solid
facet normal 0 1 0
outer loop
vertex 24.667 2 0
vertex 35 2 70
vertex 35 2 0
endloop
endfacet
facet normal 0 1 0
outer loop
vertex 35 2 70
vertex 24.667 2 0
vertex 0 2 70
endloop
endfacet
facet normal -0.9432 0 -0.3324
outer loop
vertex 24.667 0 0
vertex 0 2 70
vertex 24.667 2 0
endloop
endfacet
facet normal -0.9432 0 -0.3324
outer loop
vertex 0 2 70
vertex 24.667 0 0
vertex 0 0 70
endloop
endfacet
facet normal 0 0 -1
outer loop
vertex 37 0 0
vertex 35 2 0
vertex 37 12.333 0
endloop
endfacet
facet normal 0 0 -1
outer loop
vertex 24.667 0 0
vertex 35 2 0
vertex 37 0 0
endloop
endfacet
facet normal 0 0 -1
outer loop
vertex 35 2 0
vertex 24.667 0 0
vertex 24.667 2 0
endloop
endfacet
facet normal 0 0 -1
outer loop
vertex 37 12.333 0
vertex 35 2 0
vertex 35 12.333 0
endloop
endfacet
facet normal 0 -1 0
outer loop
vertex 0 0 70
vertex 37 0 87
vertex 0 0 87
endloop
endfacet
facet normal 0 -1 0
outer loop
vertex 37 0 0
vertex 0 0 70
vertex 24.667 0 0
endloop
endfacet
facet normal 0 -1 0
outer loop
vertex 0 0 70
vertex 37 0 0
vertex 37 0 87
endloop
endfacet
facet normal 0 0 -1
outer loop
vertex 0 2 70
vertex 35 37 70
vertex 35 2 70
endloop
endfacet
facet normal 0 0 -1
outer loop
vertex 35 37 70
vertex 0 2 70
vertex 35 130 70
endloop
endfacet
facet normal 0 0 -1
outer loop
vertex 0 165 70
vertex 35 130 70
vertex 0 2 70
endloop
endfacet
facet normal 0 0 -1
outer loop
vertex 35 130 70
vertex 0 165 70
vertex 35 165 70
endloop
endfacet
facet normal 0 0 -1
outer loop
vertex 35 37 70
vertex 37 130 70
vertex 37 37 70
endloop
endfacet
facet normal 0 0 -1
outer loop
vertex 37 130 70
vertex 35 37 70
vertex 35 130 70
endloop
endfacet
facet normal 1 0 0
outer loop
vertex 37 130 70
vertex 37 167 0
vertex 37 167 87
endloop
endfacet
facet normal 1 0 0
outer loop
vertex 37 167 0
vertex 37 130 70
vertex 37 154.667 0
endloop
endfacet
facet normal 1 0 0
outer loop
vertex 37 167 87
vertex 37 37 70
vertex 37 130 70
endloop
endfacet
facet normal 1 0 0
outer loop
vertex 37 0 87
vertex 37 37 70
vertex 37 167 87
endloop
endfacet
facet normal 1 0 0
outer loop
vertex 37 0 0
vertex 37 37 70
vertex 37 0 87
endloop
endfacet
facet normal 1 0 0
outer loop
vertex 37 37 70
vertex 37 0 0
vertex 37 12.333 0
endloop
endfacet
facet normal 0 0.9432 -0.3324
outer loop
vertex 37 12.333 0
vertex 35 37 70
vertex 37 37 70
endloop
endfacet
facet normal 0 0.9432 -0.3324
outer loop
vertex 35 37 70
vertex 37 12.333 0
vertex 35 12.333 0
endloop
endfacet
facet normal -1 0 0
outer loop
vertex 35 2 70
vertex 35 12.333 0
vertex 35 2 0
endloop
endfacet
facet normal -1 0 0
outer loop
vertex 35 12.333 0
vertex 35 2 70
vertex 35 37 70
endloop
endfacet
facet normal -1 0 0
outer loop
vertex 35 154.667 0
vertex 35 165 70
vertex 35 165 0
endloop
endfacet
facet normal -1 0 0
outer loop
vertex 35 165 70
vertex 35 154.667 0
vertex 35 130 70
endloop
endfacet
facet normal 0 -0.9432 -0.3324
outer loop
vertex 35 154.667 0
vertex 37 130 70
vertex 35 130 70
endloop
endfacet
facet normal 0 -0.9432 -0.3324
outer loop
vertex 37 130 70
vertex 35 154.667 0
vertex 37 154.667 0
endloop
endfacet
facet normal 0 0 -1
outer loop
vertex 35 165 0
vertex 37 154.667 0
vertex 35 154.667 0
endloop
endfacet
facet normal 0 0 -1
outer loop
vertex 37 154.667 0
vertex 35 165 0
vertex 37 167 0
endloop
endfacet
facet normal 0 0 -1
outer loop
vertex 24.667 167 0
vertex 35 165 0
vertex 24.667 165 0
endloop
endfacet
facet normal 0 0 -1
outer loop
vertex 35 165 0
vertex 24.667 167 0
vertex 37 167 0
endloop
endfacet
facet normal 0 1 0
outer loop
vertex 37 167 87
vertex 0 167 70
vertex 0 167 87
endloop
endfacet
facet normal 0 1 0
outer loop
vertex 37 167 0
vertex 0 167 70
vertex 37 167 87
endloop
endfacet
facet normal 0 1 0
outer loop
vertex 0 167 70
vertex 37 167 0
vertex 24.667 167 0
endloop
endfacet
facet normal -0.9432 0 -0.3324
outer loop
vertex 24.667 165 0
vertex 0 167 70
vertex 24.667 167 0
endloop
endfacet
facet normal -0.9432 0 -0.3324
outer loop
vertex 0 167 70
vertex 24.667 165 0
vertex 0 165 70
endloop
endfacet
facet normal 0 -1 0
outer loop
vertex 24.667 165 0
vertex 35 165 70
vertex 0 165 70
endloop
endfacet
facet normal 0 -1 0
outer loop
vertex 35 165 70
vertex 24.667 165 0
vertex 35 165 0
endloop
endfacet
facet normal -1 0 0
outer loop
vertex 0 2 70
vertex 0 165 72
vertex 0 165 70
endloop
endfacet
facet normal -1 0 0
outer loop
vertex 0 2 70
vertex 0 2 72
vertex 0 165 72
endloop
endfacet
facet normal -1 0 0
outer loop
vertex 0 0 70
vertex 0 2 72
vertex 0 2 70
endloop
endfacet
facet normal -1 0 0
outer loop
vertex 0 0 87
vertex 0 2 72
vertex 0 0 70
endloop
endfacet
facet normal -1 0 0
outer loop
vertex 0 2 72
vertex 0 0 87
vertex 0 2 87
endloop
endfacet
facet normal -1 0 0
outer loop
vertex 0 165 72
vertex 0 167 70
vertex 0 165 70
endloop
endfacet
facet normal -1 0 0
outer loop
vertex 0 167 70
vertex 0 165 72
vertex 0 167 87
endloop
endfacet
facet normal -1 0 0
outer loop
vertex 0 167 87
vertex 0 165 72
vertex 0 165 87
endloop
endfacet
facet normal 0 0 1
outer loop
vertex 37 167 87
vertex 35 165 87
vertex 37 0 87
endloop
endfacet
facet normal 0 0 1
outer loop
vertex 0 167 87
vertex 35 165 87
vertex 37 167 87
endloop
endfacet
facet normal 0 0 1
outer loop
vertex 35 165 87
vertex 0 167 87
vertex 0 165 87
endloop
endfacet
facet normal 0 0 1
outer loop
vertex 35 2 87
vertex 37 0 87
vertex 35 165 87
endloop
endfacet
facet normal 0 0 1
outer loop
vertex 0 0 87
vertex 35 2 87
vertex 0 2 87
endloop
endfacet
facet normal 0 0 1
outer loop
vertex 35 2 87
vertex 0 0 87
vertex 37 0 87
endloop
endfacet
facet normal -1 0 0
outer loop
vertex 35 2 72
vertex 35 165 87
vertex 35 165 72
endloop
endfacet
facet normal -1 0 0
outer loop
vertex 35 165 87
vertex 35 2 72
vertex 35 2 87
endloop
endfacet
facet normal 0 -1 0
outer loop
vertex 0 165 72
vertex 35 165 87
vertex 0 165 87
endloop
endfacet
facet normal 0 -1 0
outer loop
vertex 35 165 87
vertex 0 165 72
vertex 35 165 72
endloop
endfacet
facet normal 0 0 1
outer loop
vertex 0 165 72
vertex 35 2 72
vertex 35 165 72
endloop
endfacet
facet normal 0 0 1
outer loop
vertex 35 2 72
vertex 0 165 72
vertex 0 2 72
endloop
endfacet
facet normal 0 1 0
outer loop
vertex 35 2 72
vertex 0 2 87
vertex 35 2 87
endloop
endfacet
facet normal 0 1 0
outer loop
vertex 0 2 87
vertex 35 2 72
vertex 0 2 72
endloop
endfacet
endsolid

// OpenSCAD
$fn = 50;

tolerance = 1;

draperDepth = 162;
draperDepthWithTolerance = draperDepth + tolerance;
draperWidth = 502;

frontSize = 15;
feetHeight = 70;
feetThickness = 2;

feetBaseBorderHeight = frontSize;
feetBaseBorderThickness = 2;
feetBaseWidth = 35;
feetBaseDepth = draperDepthWithTolerance;
feetBaseThickness = 2;

totalFeetBaseWidth = feetBaseWidth + feetBaseBorderThickness;
totalFeetBaseDepth = feetBaseBorderThickness + feetBaseDepth + feetBaseBorderThickness;
totalFeetBaseHeight = feetBaseThickness + feetBaseBorderHeight;

feetBaseHollow = [feetBaseWidth, feetBaseDepth, feetBaseBorderHeight];
feetBaseWithBorder = [
    totalFeetBaseWidth,
    totalFeetBaseDepth,
    totalFeetBaseHeight];

union(){
    feet();
    translate([0, 0, feetHeight]){
        difference(){
            cube(feetBaseWithBorder, center=false);
            translate([0, feetBaseBorderThickness, feetBaseThickness]){
                cube(feetBaseHollow, center=false);
            }
        }
    }
}

module feet(){
    frontFoot();
    backFoot();
}

module backFoot(){
    translate([totalFeetBaseWidth, totalFeetBaseDepth - totalFeetBaseWidth, 0])
    rotate([0, 0, 90])
    foot();
}

module frontFoot(){
    foot();
}

module foot(){
    union(){
        translate([0, feetThickness, 0]){
            footFrontFace();
        }
        translate([totalFeetBaseWidth, totalFeetBaseWidth, 0]){
            footSideFace();
        }
    }
}

module footSideFace(){
    rotate(a = [90, 0, -90]){
        linear_extrude(height = feetThickness){
            polygon([
                [0, feetHeight],
                [totalFeetBaseWidth, feetHeight],
                [totalFeetBaseWidth, 0],
                [totalFeetBaseWidth * 2/3 , 0]]);
        }
    }
}

module footFrontFace(){
    rotate(a = [90, 0, 0]){
        linear_extrude(height = feetThickness){
            polygon([
                [0, feetHeight],
                [totalFeetBaseWidth, feetHeight],
                [totalFeetBaseWidth, 0],
                [totalFeetBaseWidth * 2/3 , 0]]);
        }
    }
}
